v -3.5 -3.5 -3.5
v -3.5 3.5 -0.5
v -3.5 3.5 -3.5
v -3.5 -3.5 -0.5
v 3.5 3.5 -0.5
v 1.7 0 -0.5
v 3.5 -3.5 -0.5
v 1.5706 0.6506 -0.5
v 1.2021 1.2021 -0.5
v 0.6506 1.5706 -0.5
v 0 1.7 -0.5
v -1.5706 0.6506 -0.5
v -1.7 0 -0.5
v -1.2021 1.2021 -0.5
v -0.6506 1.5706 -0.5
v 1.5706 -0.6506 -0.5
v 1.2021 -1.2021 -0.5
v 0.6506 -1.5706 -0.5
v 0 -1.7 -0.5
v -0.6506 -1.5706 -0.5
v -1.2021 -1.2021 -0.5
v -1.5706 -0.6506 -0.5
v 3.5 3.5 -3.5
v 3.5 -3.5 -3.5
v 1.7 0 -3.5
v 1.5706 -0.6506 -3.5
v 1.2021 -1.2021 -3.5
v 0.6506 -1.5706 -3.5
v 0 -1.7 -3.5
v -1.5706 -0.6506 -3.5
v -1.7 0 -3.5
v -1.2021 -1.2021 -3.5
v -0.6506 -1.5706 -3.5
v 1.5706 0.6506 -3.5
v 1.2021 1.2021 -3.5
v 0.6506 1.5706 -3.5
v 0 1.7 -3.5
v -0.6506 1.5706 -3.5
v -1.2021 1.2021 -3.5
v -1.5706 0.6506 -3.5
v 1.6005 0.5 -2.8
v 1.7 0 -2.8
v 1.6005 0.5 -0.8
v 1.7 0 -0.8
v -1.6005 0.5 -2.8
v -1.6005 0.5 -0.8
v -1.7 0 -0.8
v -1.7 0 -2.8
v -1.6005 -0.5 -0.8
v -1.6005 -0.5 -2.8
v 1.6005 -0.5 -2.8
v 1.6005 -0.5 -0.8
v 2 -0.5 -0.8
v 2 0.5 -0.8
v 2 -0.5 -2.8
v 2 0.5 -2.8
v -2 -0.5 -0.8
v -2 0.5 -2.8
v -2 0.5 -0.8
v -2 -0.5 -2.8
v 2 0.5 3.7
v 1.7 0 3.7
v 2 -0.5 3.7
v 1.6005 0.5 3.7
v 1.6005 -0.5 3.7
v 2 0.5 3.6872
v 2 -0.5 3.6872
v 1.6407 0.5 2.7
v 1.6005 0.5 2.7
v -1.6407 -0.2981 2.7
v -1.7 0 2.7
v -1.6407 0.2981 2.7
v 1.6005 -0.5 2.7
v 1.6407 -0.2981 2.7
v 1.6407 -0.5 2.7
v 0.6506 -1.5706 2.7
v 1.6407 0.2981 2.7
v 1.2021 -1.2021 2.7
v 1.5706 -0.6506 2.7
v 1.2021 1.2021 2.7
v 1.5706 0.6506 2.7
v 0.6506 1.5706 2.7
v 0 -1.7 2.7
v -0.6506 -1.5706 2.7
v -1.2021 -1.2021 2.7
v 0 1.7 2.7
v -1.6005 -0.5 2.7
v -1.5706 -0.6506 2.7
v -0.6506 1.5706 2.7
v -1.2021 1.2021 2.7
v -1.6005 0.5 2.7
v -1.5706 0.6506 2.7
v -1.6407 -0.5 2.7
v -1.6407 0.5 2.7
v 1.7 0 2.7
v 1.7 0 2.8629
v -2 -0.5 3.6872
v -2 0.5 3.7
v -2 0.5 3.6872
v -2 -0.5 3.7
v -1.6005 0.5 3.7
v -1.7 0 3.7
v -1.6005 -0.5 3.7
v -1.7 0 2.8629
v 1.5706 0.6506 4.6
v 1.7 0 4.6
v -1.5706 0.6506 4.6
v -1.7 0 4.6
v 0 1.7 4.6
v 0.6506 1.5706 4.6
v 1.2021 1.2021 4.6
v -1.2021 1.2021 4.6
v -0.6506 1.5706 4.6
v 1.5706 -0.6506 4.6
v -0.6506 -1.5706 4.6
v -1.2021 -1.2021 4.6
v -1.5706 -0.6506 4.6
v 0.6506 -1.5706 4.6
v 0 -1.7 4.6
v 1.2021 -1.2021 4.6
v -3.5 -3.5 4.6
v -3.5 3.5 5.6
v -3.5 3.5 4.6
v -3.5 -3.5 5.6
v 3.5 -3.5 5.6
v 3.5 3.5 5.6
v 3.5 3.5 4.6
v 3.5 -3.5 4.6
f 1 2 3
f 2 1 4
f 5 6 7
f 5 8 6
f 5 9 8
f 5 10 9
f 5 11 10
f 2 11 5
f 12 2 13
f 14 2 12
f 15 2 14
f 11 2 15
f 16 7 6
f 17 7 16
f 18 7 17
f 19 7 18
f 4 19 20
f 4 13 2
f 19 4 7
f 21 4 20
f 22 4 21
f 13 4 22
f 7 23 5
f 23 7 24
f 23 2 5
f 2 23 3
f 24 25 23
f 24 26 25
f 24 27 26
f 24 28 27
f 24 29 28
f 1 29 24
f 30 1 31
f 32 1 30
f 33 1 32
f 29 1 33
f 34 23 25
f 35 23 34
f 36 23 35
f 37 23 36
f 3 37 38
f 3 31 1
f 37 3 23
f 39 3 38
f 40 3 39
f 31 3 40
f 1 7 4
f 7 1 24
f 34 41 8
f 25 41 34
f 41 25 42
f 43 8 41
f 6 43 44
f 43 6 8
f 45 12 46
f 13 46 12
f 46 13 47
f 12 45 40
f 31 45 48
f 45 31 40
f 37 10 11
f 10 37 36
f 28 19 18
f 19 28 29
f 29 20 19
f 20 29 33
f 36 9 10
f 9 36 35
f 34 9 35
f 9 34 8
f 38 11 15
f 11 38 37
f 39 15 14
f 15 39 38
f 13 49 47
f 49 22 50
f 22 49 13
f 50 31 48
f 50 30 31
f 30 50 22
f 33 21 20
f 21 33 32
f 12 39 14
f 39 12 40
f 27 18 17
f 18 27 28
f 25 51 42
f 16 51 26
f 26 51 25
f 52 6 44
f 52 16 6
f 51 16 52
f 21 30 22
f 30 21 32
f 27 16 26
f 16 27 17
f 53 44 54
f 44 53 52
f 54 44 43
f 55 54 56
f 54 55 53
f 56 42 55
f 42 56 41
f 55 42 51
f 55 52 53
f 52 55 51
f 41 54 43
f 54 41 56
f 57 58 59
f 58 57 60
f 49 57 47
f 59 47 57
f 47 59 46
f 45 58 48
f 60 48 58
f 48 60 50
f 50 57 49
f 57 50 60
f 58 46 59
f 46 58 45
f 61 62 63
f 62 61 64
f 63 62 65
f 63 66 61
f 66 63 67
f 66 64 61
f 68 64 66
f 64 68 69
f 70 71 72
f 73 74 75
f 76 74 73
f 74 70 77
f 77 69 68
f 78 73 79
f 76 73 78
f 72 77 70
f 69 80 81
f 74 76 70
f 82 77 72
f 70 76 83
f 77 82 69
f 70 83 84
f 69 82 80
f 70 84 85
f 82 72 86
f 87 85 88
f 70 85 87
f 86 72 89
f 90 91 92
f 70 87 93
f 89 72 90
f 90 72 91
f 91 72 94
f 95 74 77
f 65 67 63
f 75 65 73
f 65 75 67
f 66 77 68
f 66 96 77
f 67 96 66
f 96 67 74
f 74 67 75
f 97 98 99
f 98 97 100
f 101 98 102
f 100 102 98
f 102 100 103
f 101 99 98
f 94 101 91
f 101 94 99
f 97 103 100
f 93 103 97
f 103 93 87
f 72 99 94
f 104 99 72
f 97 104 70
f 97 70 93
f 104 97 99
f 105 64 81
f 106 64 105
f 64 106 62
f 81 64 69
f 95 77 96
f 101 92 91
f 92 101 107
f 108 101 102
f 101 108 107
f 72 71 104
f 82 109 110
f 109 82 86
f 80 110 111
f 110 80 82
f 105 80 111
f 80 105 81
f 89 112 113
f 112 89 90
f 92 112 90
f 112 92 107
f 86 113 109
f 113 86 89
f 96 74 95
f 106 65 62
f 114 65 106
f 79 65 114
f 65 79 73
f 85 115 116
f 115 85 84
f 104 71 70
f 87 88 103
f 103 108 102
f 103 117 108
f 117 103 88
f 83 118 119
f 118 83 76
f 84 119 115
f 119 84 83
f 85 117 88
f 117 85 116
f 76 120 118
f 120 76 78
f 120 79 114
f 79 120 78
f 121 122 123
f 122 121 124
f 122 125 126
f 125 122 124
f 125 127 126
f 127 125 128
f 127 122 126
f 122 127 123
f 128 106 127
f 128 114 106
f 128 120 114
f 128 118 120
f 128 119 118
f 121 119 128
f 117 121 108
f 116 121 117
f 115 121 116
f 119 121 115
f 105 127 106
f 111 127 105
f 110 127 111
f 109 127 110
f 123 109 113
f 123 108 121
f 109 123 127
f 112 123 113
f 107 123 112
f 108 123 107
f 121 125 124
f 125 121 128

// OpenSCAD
preview = true; // [true:false]

function centered(bool) = (bool) ? 0 : 3 ;

module button(center=false) {
    cube(size=[6, 6.1, 3], center=center);
    
    translate([centered(center), centered(center), 1.8])
    cylinder(d=3.4, h=1.8, center=center, $fn=16);
}

// Comment out this button before printing
%translate([0, 0, (preview) ? -10 : 0]) button(center=true);

// Comment out either holder or cap to 3D print which ever you want to print
translate([0, 0, (preview) ? -5 : 0]) holder();

cap();

module holder(center=true) {
    difference(){
        translate([0, 0, 3])
        cube(size=[7, 7, 3], center=true);

        translate([centered(center), centered(center), 3])
        cylinder(d=3.4, h=3.1, center=center, $fn=16);
        translate([1.5, 0, 3.2])
        cube(size=[1, 1, 2], center=true);
        
        translate([-1.5, 0, 3.2])
        cube(size=[1, 1, 2], center=true);
    }
    

}
module cap(center=true) {
    union(){
        translate([centered(center), centered(center), 3.7])
        cylinder(d=3.4, h=2, center=center, $fn=16);
        
        translate([0, 0, 5.1])
        cube(size=[7, 7, 1], center=true);
        
        difference(){
            translate([1.5, 0, 3.2])
            cube(size=[1, 1, 1], center=true);
            
            translate([2.1, 0, 2.5])
            rotate([0, -70, 0])
            cube(size=[3, 2, 1], center=true);
        }
        
        difference(){
            translate([-1.5, 0, 3.2])
            cube(size=[1, 1, 1], center=true);

            translate([-2.1, 0, 2.5])
            rotate([0, 70, 0])
            cube(size=[3, 2, 1], center=true);
            
        }
        
    }
}
